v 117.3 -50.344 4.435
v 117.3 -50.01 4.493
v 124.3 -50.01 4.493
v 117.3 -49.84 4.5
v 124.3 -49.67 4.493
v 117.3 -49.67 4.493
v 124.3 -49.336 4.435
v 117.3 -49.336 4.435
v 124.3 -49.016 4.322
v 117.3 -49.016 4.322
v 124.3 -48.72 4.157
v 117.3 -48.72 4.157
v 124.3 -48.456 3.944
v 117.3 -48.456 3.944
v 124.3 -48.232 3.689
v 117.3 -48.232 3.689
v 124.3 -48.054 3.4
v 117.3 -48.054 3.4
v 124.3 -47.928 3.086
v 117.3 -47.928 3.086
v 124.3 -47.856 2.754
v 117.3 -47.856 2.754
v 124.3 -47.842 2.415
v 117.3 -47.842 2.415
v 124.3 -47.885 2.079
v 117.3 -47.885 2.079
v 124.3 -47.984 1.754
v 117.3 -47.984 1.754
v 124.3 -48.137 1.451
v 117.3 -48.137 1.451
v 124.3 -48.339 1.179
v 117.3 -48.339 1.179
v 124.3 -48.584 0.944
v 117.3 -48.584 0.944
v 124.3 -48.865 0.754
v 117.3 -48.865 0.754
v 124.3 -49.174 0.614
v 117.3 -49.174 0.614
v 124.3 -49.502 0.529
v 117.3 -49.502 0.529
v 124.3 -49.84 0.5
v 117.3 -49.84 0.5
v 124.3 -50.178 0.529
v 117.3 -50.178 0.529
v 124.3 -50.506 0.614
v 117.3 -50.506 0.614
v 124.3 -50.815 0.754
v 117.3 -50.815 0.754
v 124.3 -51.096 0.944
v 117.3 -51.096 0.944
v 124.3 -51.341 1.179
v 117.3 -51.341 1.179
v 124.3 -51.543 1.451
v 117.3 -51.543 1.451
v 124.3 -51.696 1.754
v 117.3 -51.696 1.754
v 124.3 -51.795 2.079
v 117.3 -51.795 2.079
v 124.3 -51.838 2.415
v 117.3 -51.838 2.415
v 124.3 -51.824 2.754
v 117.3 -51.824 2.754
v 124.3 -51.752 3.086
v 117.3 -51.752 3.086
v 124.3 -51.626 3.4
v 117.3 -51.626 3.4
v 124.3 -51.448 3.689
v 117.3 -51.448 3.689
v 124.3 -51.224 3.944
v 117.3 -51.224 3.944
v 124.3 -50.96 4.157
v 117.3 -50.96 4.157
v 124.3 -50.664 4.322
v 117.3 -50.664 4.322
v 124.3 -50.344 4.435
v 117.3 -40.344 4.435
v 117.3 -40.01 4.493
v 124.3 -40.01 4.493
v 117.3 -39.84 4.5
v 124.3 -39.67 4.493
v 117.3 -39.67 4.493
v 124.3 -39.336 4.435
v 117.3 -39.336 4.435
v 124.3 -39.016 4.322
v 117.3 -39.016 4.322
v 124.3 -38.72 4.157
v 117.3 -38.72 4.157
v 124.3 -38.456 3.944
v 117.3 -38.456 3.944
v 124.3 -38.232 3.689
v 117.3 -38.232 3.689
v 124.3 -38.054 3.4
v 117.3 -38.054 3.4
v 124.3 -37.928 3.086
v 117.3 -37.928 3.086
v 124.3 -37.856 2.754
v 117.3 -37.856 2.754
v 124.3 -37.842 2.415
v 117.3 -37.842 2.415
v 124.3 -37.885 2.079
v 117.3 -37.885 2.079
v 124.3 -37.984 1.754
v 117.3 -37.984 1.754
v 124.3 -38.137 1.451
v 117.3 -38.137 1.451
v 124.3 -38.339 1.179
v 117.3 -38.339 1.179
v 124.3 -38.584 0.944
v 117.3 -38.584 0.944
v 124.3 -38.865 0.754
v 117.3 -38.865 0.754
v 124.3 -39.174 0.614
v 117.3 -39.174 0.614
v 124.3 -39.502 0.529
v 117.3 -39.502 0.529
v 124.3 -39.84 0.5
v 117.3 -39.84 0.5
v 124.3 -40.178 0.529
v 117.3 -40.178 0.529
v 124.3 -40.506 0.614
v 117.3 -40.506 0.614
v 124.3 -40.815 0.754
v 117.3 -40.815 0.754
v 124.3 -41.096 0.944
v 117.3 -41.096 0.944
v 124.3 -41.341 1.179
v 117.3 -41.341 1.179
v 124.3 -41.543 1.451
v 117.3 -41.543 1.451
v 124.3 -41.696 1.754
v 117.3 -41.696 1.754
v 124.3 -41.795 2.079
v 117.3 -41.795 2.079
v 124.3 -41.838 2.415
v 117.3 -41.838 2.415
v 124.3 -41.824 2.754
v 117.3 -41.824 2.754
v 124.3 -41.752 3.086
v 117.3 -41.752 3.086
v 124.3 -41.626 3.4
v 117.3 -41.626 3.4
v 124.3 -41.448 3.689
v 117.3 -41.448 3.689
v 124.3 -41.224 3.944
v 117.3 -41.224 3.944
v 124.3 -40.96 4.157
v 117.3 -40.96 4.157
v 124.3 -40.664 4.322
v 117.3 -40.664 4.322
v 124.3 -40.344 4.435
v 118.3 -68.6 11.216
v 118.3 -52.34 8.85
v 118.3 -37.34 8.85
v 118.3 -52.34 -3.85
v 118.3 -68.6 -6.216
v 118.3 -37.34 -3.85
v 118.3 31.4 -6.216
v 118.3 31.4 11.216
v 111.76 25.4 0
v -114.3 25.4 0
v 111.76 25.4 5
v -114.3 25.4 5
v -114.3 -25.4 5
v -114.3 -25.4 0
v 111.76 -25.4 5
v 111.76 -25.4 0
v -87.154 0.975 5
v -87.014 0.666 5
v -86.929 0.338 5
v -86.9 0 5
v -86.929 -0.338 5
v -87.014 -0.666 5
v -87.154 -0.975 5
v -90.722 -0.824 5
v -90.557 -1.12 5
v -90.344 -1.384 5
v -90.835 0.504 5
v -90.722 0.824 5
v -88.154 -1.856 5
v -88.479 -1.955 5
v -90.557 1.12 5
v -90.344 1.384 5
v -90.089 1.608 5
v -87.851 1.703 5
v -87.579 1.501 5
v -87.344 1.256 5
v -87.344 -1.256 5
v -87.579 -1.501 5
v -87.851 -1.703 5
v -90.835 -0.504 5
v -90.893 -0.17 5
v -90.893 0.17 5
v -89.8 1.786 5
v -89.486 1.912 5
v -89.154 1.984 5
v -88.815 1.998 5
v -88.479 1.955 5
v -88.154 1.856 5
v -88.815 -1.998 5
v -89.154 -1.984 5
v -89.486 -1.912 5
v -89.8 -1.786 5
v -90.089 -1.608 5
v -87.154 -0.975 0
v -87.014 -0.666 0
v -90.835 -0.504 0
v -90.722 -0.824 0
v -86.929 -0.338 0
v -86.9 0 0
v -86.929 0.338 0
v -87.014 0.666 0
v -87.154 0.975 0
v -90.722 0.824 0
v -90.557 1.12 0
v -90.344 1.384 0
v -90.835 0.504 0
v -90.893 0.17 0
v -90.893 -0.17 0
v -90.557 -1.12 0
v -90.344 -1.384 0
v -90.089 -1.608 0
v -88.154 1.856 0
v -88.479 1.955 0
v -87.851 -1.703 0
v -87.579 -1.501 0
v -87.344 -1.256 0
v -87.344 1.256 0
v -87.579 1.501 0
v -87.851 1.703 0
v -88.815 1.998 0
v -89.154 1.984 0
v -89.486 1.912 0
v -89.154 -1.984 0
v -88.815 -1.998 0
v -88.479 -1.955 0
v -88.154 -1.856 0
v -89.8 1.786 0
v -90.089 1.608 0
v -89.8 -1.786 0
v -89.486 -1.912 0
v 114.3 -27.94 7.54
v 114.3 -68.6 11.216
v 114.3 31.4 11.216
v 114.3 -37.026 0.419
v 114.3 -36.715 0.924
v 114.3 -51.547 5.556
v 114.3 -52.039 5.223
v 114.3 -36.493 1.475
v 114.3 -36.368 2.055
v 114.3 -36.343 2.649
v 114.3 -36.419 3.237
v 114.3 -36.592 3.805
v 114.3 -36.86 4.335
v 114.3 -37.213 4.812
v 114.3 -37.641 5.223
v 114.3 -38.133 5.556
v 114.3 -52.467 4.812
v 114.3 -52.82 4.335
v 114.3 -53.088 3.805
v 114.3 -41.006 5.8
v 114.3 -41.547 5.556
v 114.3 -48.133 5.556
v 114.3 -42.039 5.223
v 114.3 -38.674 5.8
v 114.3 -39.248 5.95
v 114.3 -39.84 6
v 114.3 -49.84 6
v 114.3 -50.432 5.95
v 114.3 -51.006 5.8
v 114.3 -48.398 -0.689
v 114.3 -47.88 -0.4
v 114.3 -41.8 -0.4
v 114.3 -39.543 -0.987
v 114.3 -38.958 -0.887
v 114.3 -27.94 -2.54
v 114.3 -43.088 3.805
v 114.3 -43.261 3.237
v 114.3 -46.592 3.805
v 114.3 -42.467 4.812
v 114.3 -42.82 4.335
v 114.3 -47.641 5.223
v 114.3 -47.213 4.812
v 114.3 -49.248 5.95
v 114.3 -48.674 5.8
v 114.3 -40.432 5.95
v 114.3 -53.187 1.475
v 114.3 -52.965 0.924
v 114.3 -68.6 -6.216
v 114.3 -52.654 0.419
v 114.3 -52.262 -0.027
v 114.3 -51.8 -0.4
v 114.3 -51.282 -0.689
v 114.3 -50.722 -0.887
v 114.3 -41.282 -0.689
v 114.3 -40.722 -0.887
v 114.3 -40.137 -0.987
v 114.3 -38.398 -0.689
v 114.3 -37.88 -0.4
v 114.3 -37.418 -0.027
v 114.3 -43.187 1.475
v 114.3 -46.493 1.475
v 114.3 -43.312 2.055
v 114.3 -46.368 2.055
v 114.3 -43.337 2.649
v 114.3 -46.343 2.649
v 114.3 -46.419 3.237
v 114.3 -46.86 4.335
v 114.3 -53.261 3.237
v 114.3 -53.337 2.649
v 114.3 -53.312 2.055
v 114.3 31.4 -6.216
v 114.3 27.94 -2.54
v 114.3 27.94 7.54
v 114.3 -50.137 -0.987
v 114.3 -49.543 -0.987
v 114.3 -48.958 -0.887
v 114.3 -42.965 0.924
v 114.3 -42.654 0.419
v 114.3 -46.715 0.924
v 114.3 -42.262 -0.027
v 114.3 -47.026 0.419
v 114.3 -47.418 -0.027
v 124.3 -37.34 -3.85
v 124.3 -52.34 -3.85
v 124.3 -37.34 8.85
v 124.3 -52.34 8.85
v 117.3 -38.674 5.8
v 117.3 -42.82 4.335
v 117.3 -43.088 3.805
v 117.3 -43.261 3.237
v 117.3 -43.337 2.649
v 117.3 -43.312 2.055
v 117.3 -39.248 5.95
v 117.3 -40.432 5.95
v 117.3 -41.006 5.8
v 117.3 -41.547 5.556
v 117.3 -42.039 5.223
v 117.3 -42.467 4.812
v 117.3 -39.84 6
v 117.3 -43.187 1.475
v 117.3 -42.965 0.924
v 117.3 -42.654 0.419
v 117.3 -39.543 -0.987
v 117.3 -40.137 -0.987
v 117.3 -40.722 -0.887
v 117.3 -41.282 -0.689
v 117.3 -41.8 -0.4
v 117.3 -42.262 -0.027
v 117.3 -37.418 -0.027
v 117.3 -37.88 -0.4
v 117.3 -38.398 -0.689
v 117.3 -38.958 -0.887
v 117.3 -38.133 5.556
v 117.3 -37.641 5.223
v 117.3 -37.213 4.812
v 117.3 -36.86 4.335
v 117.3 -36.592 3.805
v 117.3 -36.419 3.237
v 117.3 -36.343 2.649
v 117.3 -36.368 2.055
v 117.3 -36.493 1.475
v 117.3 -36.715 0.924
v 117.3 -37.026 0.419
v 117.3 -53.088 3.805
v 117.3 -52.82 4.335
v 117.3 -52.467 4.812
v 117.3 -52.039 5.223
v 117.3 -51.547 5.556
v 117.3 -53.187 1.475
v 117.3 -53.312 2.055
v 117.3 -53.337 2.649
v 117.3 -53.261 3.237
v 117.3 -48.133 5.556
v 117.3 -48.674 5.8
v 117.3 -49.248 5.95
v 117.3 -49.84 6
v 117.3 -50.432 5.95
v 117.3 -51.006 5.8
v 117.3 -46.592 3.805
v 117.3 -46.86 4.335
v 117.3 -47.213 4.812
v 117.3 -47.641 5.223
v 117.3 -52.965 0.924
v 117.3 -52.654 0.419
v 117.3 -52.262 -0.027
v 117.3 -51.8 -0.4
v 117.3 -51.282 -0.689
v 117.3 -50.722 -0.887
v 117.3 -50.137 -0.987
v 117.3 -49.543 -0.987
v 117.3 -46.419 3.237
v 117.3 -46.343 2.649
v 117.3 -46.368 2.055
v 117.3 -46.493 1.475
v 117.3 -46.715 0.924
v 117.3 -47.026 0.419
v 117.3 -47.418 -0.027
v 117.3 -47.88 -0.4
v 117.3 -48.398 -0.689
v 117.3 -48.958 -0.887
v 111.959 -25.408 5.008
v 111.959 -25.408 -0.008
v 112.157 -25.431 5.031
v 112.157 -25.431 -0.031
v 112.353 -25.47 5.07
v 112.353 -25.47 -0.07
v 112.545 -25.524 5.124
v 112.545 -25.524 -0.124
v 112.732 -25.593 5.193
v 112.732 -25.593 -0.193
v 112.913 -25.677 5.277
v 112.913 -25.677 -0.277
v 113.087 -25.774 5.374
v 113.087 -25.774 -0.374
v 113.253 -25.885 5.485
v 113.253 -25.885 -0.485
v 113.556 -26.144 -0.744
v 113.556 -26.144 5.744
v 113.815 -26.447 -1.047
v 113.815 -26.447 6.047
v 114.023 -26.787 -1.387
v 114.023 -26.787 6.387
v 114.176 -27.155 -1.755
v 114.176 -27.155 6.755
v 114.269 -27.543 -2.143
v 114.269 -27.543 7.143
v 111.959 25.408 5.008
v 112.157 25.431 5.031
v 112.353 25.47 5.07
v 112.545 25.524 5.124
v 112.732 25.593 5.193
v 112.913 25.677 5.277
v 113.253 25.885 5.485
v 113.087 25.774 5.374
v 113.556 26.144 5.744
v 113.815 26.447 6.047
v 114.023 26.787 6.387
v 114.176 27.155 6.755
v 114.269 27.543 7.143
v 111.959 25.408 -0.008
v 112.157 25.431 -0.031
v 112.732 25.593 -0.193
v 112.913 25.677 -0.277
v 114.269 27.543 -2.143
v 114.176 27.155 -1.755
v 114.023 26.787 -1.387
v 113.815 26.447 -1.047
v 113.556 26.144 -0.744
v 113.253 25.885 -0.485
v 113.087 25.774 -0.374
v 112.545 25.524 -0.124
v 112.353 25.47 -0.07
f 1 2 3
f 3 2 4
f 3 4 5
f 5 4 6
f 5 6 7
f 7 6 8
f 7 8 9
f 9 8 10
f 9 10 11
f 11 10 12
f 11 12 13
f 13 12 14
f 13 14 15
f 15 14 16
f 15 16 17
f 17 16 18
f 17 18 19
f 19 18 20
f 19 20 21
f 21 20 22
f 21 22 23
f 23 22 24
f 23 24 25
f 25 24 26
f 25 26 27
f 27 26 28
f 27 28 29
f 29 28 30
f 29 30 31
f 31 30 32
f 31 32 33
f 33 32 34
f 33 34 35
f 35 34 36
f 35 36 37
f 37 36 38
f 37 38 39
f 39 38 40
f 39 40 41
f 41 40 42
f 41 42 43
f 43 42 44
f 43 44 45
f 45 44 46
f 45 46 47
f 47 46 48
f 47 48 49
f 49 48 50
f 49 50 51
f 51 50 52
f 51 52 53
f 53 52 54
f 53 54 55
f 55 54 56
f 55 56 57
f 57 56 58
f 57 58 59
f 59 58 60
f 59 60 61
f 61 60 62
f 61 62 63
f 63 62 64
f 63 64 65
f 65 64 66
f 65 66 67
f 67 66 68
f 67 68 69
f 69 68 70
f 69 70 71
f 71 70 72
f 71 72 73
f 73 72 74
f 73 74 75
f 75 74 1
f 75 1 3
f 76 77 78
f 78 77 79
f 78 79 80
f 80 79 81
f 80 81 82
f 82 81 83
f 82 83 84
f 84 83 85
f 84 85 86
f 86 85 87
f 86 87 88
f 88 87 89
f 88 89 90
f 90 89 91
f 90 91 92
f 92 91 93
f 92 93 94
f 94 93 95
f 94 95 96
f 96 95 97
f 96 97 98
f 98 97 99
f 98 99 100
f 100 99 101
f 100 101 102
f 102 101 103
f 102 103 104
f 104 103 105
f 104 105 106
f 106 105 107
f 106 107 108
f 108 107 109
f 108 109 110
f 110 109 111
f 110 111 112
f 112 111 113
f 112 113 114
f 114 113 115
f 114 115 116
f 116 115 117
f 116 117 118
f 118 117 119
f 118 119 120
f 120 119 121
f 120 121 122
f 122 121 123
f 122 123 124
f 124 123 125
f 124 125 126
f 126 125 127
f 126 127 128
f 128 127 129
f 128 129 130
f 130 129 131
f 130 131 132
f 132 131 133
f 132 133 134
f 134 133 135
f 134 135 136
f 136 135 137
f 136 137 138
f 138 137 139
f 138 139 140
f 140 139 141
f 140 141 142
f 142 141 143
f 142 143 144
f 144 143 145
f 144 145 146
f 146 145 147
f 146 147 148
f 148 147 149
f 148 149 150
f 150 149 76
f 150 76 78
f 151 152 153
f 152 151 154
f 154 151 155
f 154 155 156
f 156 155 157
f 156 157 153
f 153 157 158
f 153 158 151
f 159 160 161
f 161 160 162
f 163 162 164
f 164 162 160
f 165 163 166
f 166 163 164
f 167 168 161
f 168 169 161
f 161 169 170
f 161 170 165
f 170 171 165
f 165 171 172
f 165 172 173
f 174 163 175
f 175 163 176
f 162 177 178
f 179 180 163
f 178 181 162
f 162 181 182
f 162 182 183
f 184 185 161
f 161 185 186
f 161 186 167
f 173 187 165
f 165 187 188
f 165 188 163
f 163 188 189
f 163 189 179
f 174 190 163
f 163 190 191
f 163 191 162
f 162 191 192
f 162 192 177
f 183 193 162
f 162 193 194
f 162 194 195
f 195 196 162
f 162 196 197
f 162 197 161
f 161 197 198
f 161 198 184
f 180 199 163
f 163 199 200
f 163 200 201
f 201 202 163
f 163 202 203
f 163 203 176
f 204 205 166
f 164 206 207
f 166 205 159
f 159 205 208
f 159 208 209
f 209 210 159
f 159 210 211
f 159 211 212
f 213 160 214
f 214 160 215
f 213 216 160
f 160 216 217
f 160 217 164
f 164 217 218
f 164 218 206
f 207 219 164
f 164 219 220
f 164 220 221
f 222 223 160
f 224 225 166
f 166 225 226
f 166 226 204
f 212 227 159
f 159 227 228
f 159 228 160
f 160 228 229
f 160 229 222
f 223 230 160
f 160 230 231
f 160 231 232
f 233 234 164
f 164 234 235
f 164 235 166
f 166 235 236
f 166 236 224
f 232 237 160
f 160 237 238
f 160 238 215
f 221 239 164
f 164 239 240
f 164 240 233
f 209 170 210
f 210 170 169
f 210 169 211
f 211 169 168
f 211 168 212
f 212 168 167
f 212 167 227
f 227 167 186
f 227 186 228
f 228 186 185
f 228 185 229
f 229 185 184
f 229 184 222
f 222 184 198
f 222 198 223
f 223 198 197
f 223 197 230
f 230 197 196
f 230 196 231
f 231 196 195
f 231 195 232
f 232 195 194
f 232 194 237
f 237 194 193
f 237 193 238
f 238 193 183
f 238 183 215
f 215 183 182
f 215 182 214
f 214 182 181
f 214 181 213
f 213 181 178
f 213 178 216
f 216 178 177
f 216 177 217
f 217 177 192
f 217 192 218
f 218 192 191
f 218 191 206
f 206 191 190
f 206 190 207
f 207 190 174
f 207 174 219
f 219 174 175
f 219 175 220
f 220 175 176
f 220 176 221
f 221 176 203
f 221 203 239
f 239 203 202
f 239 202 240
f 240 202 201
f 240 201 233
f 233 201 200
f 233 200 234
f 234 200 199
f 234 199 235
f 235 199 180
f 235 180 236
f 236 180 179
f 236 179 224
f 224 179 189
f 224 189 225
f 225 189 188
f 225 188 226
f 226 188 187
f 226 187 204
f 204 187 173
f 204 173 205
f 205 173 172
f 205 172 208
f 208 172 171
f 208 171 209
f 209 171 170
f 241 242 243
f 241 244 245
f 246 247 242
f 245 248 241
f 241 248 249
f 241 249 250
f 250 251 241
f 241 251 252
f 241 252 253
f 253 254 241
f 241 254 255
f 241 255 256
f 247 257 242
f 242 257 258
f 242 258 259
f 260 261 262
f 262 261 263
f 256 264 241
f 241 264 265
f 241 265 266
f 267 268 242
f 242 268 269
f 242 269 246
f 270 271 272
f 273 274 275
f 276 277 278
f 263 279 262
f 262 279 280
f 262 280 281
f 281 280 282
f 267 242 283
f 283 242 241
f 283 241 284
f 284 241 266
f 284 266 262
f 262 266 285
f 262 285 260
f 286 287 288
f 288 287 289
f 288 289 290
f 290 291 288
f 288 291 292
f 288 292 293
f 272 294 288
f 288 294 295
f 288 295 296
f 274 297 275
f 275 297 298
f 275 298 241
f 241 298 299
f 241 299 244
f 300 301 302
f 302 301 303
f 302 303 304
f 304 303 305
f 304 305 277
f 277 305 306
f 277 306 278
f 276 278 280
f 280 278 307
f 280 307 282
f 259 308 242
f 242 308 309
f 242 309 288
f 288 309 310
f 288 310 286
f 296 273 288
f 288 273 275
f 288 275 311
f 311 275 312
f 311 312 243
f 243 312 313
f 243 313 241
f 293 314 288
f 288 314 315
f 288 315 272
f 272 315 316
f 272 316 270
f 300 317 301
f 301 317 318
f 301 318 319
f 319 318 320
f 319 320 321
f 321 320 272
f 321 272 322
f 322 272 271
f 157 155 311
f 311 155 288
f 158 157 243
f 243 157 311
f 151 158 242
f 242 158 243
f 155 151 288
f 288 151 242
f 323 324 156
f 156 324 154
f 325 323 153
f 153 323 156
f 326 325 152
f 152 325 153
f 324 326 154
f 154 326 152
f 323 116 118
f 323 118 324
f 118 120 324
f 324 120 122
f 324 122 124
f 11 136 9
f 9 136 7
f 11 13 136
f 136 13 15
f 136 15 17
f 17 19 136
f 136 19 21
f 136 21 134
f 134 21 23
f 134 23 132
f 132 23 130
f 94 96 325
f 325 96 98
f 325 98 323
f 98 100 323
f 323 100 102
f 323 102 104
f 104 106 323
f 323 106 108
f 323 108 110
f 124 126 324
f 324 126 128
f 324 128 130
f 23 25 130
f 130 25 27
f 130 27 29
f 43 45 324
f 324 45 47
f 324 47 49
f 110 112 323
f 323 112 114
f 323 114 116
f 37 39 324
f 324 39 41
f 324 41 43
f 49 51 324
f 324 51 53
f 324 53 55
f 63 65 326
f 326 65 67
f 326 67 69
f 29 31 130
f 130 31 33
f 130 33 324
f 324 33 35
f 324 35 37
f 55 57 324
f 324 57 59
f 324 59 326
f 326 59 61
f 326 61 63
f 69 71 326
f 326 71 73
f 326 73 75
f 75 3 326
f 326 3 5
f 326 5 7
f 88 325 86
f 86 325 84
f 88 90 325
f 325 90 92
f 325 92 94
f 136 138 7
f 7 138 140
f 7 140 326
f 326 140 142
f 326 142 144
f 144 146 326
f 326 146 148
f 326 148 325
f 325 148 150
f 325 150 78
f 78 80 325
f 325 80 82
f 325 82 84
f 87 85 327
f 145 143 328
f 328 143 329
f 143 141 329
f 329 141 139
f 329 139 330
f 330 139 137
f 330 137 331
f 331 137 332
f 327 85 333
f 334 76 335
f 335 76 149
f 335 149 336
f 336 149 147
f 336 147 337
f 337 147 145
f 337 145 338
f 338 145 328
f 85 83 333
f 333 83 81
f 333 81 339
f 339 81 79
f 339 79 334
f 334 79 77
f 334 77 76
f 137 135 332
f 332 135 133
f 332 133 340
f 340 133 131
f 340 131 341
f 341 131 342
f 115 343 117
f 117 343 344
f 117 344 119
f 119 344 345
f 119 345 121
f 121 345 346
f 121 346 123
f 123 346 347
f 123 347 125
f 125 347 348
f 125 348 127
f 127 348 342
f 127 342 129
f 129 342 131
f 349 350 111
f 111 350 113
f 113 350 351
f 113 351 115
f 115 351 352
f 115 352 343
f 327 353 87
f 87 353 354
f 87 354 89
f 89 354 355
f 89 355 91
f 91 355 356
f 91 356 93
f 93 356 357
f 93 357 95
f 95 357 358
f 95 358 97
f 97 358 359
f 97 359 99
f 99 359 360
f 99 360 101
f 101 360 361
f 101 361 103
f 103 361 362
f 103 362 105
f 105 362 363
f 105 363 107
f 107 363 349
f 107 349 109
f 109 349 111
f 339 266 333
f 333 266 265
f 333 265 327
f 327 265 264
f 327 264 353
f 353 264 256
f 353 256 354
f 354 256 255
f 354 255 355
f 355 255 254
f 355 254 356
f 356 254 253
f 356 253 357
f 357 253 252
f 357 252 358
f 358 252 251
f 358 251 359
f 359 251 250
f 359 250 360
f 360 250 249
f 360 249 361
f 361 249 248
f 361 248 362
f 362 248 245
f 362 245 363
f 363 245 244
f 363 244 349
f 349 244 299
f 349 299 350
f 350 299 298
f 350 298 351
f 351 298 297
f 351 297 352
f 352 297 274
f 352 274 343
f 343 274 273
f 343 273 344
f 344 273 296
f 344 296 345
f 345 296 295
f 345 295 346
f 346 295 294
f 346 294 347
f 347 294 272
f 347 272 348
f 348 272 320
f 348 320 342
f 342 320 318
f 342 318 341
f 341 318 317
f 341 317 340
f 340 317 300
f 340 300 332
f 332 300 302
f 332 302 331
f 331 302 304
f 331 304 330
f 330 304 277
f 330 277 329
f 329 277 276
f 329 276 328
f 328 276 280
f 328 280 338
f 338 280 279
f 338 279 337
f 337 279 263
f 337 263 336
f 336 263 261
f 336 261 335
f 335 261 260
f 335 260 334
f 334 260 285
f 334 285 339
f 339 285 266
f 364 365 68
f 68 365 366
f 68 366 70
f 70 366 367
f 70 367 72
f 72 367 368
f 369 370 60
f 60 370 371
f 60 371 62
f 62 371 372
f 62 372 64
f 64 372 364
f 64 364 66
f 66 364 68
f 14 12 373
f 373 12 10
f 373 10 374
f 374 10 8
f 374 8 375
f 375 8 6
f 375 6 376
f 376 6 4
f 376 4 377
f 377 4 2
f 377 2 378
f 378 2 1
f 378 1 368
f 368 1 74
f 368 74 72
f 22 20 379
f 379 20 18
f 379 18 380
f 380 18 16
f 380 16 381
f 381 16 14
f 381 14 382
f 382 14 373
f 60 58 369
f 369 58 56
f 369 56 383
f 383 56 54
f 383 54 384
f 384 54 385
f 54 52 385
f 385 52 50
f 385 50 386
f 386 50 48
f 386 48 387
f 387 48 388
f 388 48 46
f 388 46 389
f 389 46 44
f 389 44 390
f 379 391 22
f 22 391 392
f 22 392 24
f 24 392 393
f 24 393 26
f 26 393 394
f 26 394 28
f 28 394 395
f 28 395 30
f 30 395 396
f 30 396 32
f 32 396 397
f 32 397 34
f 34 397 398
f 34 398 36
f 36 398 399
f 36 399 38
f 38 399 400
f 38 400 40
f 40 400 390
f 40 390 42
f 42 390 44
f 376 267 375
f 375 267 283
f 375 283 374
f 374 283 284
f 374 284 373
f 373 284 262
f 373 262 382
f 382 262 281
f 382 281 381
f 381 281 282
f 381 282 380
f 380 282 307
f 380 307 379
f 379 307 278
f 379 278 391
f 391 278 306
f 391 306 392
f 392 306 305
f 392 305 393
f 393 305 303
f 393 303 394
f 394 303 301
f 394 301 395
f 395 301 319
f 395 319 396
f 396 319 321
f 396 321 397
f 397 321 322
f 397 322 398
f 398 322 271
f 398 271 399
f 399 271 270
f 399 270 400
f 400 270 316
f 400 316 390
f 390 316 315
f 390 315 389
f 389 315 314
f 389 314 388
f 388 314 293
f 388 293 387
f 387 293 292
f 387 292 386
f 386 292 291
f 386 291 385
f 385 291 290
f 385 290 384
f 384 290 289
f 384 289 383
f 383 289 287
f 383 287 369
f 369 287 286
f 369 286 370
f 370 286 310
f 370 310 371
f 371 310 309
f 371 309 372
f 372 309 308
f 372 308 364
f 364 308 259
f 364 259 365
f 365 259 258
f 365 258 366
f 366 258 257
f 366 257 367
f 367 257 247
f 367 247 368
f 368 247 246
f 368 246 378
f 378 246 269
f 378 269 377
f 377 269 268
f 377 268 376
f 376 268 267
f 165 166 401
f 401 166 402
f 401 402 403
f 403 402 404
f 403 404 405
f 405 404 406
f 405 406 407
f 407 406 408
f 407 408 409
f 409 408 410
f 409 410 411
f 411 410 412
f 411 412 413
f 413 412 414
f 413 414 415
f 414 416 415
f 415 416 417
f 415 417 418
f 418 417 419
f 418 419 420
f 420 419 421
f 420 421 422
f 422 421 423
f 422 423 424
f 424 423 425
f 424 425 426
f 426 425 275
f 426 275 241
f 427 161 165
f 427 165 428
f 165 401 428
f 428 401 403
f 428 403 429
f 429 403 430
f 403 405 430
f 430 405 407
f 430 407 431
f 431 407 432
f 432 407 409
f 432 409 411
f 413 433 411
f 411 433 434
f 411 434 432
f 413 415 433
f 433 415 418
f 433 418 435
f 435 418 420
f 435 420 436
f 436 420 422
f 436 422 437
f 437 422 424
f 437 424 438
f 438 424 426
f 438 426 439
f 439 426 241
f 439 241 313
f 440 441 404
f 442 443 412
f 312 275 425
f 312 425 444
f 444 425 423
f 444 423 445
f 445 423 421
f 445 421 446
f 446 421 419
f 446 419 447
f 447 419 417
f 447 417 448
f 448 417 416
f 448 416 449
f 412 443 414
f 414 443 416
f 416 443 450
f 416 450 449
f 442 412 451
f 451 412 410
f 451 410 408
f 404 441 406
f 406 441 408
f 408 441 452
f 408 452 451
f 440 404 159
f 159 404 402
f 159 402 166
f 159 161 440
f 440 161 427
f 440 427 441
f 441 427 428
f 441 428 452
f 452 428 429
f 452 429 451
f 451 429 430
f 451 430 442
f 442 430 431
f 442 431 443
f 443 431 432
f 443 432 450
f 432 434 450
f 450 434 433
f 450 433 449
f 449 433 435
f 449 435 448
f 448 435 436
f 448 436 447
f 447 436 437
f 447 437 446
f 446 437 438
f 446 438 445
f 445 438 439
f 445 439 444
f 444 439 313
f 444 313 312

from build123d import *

# Parameters (mm, degrees)
SKETCH1_W           = 228.6
SKETCH1_H           = 50.8
BOSS_EXTRUDE1_DEPTH = 5
SKETCH2_R           = 2.000000064
CUT_EXTRUDE1_DEPTH  = 118.194923098
SKETCH3_W           = 17.431165178
SKETCH3_H           = 100
BOSS_EXTRUDE2_DEPTH = 4
SKETCH4_W           = 12.7
SKETCH4_H           = 15
BOSS_EXTRUDE3_DEPTH = 6
CUT_EXTRUDE2_REACH  = 250.519
SKETCH5_R           = 2.000000064
SKETCH5_R_2         = 2
SKETCH6_R           = 3.5
CUT_EXTRUDE3_DEPTH  = 3
FILLET2_R           = 2.54


with BuildPart() as part:
    # Sketch1 → Boss-Extrude1 (new body)
    with BuildSketch(Plane.XY):
        Rectangle(SKETCH1_W, SKETCH1_H)
    extrude(amount=BOSS_EXTRUDE1_DEPTH)

    # Sketch2 → Cut-Extrude1 (cut, through all)
    with BuildSketch(Plane.XY.offset(5)):
        with Locations((-88.9, 0)):
            Circle(SKETCH2_R)
    extrude(amount=-CUT_EXTRUDE1_DEPTH, mode=Mode.SUBTRACT)

    # Sketch3 → Boss-Extrude2 (add)
    with BuildSketch(Plane(origin=(114.3, 0, 0), x_dir=(0, 0, -1), z_dir=(1, 0, 0))):
        with Locations((-2.5, -18.6)):
            Rectangle(SKETCH3_W, SKETCH3_H)
    extrude(amount=BOSS_EXTRUDE2_DEPTH)

    # Sketch4 → Boss-Extrude3 (add)
    with BuildSketch(Plane(origin=(118.3, 0, 0), x_dir=(0, 0, -1), z_dir=(1, 0, 0))):
        with Locations((-2.5, -44.840000008)):
            Rectangle(SKETCH4_W, SKETCH4_H)
    extrude(amount=BOSS_EXTRUDE3_DEPTH)

    # Sketch5 → Cut-Extrude2 (cut, up to next)
    with BuildSketch(Plane(origin=(124.3, 0, 0), x_dir=(0, 0, -1), z_dir=(1, 0, 0)), mode=Mode.PRIVATE) as cut_extrude2_sk1:
        with Locations((-2.5, -39.840000088)):
            Circle(SKETCH5_R)
    cut_extrude2_tool1 = extrude(cut_extrude2_sk1.sketch, amount=-CUT_EXTRUDE2_REACH, mode=Mode.PRIVATE) & part.part
    # Sketch5 → Cut-Extrude2 (cut, up to next)
    with BuildSketch(Plane(origin=(124.3, 0, 0), x_dir=(0, 0, -1), z_dir=(1, 0, 0)), mode=Mode.PRIVATE) as cut_extrude2_sk2:
        with Locations((-2.5, -49.840000088)):
            Circle(SKETCH5_R_2)
    cut_extrude2_tool2 = extrude(cut_extrude2_sk2.sketch, amount=-CUT_EXTRUDE2_REACH, mode=Mode.PRIVATE) & part.part
    add(cut_extrude2_tool1.solids().sort_by_distance((124.3, -39.84, 2.5))[0], mode=Mode.SUBTRACT)
    add(cut_extrude2_tool2.solids().sort_by_distance((124.3, -49.84, 2.5))[0], mode=Mode.SUBTRACT)

    # Sketch6 → Cut-Extrude3 (cut)
    with BuildSketch(Plane.ZY.offset(-114.3)):
        with Locations((2.5, -39.840000088)):
            Circle(SKETCH6_R)
        with Locations((2.5, -49.840000088)):
            Circle(SKETCH6_R)
    extrude(amount=-CUT_EXTRUDE3_DEPTH, mode=Mode.SUBTRACT)

    # Fillet2
    fillet2_edges = [part.edges().sort_by_distance(p)[0] for p in [
        (114.3, 0, 5),
        (114.3, 0, 0),
        (114.3, -25.4, 2.5),
        (114.3, 25.4, 2.5),
    ]]
    fillet(fillet2_edges, radius=FILLET2_R)


solid = part.part
